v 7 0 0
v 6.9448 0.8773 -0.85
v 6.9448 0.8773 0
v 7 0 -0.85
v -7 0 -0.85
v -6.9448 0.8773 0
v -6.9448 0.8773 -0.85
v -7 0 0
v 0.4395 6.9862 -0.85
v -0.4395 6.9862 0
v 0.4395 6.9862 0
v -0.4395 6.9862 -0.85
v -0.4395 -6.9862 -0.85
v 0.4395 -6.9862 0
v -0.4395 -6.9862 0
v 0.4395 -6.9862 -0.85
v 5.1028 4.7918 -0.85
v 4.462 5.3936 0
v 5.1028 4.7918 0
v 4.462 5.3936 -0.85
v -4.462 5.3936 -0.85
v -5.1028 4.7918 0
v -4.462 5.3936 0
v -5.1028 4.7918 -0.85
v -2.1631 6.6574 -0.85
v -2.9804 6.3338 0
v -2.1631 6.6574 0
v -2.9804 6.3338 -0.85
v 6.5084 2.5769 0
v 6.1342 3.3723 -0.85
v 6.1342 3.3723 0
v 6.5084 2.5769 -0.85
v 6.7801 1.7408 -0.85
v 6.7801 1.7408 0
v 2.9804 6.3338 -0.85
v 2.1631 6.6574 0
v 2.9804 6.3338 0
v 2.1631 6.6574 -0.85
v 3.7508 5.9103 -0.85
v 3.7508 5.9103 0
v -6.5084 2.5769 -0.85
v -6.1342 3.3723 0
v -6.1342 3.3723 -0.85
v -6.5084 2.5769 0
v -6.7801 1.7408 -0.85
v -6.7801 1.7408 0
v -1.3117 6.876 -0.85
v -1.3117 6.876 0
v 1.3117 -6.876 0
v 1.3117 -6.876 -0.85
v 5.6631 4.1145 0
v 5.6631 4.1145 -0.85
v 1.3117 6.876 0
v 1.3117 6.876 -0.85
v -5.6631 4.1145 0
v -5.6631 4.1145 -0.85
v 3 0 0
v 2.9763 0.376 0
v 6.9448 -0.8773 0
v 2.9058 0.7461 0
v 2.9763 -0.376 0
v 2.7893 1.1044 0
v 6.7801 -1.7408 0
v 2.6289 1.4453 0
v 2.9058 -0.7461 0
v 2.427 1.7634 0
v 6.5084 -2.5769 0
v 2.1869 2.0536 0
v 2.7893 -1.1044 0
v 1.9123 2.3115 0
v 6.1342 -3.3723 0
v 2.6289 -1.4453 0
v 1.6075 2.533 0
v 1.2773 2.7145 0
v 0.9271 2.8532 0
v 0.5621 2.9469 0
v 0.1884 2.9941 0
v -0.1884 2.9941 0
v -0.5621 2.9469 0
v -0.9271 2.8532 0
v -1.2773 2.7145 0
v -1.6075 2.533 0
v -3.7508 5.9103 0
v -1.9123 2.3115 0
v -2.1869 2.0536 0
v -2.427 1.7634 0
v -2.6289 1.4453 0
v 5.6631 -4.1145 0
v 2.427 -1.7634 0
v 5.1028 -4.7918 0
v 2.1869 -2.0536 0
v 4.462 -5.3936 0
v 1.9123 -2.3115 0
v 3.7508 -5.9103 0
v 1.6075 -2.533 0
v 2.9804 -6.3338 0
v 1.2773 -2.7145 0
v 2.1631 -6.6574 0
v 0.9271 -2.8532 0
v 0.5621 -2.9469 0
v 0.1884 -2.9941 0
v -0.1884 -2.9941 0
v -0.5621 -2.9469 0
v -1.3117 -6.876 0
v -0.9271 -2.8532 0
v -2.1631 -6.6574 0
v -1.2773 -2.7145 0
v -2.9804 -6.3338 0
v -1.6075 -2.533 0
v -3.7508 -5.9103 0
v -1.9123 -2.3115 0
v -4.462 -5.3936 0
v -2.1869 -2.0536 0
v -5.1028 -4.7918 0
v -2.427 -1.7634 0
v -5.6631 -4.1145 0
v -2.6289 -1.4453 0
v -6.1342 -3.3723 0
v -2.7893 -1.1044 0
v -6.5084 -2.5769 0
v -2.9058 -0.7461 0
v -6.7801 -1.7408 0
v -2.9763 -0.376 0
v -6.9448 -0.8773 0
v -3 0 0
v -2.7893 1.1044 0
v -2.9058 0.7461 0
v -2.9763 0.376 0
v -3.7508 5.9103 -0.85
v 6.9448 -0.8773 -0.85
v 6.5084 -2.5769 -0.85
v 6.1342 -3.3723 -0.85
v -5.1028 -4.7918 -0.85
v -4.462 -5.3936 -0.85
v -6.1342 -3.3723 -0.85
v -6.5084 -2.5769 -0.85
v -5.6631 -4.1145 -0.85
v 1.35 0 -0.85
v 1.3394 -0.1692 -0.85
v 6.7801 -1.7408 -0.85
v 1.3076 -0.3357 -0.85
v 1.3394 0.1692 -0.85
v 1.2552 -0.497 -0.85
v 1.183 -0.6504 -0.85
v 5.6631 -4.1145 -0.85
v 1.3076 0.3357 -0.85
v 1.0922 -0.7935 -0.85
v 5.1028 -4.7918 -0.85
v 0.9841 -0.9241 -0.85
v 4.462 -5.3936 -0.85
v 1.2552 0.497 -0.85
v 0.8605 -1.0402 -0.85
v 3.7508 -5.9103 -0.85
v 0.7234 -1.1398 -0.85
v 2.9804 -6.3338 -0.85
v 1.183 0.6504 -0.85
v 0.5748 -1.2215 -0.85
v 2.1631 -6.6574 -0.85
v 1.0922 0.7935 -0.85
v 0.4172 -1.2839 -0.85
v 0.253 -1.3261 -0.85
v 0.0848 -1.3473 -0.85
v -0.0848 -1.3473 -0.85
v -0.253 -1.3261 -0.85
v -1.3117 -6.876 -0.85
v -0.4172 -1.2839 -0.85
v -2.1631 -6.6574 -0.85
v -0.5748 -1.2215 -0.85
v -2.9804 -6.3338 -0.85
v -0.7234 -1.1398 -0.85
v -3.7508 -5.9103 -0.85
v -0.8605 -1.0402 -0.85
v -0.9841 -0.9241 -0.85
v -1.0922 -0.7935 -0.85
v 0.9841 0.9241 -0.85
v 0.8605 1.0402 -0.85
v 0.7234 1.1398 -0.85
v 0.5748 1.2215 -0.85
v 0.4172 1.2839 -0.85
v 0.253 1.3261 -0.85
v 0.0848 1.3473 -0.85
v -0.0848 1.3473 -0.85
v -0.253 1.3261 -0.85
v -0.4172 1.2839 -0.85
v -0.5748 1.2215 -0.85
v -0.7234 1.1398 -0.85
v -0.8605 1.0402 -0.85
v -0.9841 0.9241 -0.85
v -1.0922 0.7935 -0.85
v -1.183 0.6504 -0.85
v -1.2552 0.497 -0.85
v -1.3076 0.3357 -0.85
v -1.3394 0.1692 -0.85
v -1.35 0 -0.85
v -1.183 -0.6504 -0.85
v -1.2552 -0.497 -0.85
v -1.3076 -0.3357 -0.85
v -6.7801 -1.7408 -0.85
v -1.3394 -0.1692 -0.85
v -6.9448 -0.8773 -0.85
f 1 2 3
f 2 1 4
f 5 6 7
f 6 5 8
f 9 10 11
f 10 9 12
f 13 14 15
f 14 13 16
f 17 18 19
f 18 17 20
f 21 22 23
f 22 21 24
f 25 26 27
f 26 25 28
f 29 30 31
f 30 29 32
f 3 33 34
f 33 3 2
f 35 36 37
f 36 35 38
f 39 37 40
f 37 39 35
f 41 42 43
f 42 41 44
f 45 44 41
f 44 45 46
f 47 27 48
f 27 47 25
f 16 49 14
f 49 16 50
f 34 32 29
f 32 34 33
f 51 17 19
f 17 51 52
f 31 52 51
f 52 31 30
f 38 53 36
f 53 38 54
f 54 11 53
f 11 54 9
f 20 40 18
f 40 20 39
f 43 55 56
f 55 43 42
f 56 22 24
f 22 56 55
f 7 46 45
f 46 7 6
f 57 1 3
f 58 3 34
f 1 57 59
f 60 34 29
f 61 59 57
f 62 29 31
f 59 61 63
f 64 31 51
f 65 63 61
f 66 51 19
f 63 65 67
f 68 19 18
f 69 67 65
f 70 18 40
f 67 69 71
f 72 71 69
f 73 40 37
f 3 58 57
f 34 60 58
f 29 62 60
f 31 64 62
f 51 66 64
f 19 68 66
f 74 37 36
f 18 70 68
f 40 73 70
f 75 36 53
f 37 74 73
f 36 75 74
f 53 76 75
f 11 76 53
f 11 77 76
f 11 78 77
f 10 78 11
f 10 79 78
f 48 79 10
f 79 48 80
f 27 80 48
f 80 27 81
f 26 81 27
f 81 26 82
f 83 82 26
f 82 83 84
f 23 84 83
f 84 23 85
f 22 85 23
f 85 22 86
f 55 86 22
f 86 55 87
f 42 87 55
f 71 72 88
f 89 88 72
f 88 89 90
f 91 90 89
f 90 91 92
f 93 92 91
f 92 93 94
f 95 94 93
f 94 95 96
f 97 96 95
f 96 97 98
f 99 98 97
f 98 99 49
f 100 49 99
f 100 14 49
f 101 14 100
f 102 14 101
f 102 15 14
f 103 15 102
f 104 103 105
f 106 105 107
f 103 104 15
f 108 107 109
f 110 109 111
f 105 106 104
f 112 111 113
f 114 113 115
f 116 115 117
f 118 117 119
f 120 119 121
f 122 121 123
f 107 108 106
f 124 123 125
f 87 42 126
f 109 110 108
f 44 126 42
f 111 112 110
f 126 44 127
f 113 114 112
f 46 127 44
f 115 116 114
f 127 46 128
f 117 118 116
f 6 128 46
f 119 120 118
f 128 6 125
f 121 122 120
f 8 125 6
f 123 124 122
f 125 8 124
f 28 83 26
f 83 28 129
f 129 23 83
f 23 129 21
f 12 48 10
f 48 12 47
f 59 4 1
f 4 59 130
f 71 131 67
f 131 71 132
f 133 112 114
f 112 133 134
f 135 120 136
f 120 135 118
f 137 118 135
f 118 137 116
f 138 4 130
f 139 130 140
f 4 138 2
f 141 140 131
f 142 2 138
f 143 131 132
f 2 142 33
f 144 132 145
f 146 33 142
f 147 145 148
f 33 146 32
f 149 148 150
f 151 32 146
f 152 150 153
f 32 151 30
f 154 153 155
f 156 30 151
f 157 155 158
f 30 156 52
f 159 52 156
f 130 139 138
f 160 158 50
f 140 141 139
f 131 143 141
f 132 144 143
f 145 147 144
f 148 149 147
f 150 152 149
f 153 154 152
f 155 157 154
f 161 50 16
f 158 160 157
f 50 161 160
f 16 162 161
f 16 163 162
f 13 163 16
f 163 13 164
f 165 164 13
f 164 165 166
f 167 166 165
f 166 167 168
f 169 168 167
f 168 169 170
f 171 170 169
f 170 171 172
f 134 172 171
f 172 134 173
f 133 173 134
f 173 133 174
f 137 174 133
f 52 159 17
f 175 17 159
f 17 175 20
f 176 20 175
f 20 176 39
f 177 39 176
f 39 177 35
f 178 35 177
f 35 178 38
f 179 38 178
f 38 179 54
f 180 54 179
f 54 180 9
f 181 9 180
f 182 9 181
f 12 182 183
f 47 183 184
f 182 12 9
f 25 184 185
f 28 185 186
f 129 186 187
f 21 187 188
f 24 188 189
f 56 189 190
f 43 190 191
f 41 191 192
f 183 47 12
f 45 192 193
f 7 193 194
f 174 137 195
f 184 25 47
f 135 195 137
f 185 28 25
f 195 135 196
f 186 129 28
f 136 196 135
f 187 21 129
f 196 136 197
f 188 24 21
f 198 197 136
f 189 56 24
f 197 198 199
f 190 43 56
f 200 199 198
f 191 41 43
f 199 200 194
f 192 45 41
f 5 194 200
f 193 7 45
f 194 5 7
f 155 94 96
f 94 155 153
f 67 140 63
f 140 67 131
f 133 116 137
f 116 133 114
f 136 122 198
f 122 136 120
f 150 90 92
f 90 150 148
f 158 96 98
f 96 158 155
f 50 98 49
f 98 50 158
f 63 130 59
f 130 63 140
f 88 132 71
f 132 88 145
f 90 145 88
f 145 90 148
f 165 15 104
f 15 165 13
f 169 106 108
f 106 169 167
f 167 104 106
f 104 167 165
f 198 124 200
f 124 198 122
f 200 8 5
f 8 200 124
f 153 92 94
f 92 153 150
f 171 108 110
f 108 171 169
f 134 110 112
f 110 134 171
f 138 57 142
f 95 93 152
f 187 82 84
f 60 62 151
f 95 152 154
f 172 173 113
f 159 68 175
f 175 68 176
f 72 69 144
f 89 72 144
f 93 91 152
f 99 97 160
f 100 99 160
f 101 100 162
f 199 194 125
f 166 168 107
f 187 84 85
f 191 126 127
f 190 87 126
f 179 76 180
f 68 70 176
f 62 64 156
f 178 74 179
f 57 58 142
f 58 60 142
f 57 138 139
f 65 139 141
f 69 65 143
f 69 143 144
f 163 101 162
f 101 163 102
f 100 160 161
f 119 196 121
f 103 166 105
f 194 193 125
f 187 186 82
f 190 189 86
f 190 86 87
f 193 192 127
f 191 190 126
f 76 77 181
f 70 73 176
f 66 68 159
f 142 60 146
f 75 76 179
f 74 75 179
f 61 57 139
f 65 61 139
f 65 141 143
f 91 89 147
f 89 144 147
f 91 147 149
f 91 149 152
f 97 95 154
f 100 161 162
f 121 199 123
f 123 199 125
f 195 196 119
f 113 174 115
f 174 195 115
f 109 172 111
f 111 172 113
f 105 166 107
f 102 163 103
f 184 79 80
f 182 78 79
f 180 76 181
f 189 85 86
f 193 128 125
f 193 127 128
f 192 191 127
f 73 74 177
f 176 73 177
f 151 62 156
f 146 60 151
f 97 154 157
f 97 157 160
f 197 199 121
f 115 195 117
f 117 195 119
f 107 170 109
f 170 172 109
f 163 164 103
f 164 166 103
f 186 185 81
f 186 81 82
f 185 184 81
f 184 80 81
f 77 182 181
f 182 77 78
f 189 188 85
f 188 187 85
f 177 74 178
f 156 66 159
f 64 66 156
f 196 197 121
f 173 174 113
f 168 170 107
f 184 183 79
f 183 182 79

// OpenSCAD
$fn = 50;


difference() {
	union() {
		translate(v = [0, 0, -0.8500000000]) {
			cylinder(h = 0.8500000000, r = 7.0000000000);
		}
		translate(v = [0, 0, -0.8500000000]) {
			cylinder(h = 0.8500000000, r = 2.8750000000);
		}
	}
	union() {
		translate(v = [0, 0, 0]) {
			rotate(a = [0, 0, 0]) {
				difference() {
					union() {
						translate(v = [0, 0, -0.8500000000]) {
							cylinder(h = 0.8500000000, r = 1.0000000000);
						}
						translate(v = [0, 0, -0.8500000000]) {
							cylinder(h = 0.8500000000, r1 = 1.3500000000, r2 = 3.0000000000);
						}
						translate(v = [0, 0, -0.8500000000]) {
							cylinder(h = 0.8500000000, r = 1.3500000000);
						}
						translate(v = [0, 0, -0.8500000000]) {
							cylinder(h = 0.8500000000, r = 1.0000000000);
						}
					}
					union();
				}
			}
		}
	}
}
